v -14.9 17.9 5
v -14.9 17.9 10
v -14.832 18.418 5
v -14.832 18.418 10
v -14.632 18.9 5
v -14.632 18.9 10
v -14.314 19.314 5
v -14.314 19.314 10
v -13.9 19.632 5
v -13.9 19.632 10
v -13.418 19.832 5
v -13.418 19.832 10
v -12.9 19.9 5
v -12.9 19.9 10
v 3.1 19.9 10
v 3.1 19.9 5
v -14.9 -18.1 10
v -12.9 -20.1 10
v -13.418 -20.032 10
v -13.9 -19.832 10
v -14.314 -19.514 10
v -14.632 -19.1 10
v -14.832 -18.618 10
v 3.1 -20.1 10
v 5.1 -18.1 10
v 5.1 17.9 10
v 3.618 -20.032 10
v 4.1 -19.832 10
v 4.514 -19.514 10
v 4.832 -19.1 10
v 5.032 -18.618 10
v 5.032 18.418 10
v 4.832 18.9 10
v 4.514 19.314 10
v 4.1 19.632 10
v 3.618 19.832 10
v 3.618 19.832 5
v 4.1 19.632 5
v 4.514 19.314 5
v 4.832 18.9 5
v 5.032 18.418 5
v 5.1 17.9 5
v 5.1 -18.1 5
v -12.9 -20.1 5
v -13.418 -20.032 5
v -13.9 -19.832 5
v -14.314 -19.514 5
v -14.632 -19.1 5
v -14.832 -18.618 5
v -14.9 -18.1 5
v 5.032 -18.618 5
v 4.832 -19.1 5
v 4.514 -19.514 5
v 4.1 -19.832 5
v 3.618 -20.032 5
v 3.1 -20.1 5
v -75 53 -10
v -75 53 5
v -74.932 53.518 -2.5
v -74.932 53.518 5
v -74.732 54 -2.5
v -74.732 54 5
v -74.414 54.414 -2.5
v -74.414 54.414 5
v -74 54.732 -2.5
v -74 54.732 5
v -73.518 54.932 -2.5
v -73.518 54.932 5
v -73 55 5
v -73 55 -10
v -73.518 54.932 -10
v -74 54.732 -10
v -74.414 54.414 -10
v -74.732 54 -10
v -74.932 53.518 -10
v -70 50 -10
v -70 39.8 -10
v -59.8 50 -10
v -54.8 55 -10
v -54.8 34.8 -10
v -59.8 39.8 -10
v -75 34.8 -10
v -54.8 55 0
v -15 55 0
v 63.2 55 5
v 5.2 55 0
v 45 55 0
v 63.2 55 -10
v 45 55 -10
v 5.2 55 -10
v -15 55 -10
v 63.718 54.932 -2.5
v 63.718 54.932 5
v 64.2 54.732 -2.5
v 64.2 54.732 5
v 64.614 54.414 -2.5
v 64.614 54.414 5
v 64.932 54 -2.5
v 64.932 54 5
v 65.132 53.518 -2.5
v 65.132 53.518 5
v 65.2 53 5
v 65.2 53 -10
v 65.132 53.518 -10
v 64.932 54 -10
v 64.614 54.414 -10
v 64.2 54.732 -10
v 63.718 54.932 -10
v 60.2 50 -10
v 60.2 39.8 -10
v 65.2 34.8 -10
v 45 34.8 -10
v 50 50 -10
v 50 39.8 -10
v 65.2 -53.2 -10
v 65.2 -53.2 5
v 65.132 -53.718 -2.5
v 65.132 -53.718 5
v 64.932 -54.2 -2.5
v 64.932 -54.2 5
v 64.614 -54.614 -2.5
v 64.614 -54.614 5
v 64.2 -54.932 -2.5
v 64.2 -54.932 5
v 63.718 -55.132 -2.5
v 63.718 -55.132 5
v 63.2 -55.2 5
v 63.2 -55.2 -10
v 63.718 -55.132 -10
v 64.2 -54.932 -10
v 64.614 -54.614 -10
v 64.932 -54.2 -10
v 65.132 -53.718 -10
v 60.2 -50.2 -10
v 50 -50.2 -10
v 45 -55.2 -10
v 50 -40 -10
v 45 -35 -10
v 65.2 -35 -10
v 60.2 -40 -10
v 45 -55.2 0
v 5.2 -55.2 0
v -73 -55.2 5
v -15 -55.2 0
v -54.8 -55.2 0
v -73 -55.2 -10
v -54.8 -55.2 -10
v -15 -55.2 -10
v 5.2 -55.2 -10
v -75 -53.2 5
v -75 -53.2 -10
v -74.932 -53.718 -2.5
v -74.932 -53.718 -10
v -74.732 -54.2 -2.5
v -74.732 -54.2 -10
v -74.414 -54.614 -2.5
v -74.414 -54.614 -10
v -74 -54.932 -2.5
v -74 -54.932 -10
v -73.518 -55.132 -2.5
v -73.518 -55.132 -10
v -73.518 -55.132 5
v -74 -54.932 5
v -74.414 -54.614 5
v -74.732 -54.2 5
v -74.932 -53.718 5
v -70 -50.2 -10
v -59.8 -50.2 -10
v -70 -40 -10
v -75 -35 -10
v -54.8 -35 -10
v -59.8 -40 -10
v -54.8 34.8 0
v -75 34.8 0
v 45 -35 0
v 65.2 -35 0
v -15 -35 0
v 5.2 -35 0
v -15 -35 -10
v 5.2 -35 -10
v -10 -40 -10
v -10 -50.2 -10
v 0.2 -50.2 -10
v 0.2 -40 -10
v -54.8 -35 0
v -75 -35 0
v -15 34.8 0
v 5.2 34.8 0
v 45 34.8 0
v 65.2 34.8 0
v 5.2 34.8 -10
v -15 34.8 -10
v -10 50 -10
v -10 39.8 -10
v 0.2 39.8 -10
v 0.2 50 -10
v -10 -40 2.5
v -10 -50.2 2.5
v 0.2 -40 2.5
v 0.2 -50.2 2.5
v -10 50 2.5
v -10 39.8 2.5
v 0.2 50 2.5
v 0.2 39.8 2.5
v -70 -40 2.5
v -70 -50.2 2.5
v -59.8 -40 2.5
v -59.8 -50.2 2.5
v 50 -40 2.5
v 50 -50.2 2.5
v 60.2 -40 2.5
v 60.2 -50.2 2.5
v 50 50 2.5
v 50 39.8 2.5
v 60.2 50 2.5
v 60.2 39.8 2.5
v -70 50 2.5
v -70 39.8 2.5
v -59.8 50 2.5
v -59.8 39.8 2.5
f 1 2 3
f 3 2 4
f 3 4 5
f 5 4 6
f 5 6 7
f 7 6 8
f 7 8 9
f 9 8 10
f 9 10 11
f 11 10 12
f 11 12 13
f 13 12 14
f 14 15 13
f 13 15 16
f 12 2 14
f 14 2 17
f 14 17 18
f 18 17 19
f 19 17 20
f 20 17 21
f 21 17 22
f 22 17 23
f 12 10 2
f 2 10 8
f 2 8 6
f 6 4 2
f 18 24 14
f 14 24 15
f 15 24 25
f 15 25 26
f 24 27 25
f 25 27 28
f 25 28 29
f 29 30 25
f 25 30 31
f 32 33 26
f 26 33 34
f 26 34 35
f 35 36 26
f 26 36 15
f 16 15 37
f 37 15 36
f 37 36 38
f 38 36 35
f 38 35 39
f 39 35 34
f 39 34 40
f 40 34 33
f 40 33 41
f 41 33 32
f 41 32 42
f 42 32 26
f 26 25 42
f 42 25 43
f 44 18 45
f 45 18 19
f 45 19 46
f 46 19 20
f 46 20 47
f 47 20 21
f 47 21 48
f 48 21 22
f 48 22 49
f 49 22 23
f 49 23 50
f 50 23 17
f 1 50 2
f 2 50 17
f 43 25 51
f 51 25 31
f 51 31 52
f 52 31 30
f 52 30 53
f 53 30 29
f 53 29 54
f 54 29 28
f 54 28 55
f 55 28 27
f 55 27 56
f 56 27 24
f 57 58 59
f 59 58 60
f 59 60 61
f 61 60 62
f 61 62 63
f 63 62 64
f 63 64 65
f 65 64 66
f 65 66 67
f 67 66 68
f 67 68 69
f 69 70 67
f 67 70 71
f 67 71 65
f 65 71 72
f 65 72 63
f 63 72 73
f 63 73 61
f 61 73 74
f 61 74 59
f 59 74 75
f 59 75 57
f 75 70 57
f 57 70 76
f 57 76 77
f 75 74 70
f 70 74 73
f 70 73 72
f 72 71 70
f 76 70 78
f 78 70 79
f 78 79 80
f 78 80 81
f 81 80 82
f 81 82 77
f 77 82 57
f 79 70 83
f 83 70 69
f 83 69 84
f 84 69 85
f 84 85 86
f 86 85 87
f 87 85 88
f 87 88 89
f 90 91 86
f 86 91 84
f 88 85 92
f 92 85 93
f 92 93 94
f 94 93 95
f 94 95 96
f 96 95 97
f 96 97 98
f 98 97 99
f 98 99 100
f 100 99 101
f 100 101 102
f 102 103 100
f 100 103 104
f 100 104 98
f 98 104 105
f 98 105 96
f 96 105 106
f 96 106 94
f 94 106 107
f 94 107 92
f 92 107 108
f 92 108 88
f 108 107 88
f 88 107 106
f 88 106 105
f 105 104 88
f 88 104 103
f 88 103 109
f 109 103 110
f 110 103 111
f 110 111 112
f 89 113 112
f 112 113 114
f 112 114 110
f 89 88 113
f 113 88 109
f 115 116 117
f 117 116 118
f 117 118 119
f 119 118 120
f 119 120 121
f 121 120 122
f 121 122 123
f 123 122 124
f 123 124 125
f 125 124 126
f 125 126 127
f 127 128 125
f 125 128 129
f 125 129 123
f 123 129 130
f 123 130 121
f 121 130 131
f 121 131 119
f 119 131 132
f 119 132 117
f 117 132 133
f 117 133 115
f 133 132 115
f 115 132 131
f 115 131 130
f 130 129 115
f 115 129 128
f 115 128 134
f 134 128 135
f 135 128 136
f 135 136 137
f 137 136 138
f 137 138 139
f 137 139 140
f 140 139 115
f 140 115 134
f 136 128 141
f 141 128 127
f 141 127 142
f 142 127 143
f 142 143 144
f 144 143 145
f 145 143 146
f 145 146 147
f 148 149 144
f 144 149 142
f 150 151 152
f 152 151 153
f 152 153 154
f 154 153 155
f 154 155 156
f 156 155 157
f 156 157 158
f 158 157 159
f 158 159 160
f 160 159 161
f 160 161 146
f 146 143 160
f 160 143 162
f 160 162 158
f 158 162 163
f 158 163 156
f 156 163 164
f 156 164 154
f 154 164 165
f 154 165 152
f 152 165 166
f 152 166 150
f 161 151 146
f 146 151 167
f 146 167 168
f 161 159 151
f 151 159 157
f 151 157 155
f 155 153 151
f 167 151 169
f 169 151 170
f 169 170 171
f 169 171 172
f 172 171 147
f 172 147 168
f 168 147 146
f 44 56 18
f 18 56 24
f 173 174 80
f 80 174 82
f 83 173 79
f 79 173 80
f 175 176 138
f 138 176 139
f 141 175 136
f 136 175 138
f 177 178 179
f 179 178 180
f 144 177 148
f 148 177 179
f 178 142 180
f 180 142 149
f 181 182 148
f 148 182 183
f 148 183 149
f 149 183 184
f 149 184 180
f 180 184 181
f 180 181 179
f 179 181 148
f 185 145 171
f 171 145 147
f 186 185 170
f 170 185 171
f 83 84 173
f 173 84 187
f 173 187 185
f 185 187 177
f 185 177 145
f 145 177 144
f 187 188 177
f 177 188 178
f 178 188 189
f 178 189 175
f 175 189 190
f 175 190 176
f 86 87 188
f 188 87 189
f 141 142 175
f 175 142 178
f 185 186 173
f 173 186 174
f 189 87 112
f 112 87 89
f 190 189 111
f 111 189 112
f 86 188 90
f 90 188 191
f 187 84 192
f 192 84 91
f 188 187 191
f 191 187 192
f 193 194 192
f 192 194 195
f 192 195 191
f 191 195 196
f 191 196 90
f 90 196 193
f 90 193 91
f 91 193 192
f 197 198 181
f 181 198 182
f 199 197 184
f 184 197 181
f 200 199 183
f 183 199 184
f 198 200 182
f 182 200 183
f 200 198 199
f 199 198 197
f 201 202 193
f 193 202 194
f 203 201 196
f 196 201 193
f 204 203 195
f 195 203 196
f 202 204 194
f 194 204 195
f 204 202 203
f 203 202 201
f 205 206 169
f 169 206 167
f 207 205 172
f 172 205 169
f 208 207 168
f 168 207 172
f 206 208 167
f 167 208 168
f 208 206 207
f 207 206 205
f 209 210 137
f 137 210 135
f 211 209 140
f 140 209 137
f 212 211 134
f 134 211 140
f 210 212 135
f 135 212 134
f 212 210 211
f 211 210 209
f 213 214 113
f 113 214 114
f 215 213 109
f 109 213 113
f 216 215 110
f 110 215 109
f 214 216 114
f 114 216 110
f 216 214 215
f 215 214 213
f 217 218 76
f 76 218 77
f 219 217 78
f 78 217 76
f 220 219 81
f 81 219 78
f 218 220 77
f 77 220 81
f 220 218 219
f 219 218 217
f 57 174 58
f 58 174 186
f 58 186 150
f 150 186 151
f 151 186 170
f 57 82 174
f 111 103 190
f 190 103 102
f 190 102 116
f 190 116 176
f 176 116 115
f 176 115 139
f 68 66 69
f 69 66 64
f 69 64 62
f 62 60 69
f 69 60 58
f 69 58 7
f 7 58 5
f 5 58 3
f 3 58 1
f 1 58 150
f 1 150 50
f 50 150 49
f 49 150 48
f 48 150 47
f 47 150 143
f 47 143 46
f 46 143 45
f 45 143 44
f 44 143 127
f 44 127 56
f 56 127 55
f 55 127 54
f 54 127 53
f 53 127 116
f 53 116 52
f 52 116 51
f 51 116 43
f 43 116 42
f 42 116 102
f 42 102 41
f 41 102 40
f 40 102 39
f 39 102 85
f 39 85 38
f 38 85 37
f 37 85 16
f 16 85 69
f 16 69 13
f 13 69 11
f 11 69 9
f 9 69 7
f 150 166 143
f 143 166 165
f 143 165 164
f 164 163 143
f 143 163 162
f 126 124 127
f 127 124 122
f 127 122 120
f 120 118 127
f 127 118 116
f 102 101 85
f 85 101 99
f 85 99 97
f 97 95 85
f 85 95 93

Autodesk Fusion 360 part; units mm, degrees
sketch "Sketch1" plane through (0, 0, 0) normal (0, 0, 1) x (1, 0, 0)
  line L0 (-75, 55) -> (65.2, 55)
  line L1 (65.2, 55) -> (65.2, -55.2)
  line L2 (65.2, -55.2) -> (-75, -55.2)
  line L3 (-75, -55.2) -> (-75, 55)
  dimension "d1" = 140.2
  dimension "d2" = 110.2
extrude "Extrude1" add sketch "Sketch1" along normal blind 5
sketch "Sketch2" plane through (0, 0, 0) normal (0, 0, -1) x (1, 0, 0)
  line L0 (65.2, 55.2) -> (-75, 55.2)
  line L1 (-75, 55.2) -> (-75, -55)
  line L2 (-75, -55) -> (65.2, -55)
  line L3 (65.2, -55) -> (65.2, 55.2)
  line L4 (65.2, -55) -> (45, -55)
  line L5 (45, -55) -> (45, -34.8)
  line L6 (45, -34.8) -> (65.2, -34.8)
  line L7 (65.2, -34.8) -> (65.2, -55)
  line L8 (-75, -55) -> (-54.8, -55)
  line L9 (-54.8, -55) -> (-54.8, -34.8)
  line L10 (-54.8, -34.8) -> (-75, -34.8)
  line L11 (-75, -34.8) -> (-75, -55)
  line L12 (5.2, -55) -> (-15, -55)
  line L13 (-15, -55) -> (-15, -34.8)
  line L14 (-15, -34.8) -> (5.2, -34.8)
  line L15 (5.2, -34.8) -> (5.2, -55)
  line L16 (65.2, 55.2) -> (45, 55.2)
  line L17 (45, 55.2) -> (45, 35)
  line L18 (45, 35) -> (65.2, 35)
  line L19 (65.2, 35) -> (65.2, 55.2)
  line L20 (5.2, 55.2) -> (-15, 55.2)
  line L21 (-15, 55.2) -> (-15, 35)
  line L22 (-15, 35) -> (5.2, 35)
  line L23 (5.2, 35) -> (5.2, 55.2)
  line L24 (-75, 55.2) -> (-54.8, 55.2)
  line L25 (-54.8, 55.2) -> (-54.8, 35)
  line L26 (-54.8, 35) -> (-75, 35)
  line L27 (-75, 35) -> (-75, 55.2)
  line L28 (60.2, -50) -> (50, -50)
  line L29 (50, -50) -> (50, -39.8)
  line L30 (50, -39.8) -> (60.2, -39.8)
  line L31 (60.2, -39.8) -> (60.2, -50)
  line L32 (0.2, -50) -> (-10, -50)
  line L33 (-10, -50) -> (-10, -39.8)
  line L34 (-10, -39.8) -> (0.2, -39.8)
  line L35 (0.2, -39.8) -> (0.2, -50)
  line L36 (-59.8, -50) -> (-70, -50)
  line L37 (-70, -50) -> (-70, -39.8)
  line L38 (-70, -39.8) -> (-59.8, -39.8)
  line L39 (-59.8, -39.8) -> (-59.8, -50)
  line L40 (60.2, 40) -> (50, 40)
  line L41 (50, 40) -> (50, 50.2)
  line L42 (50, 50.2) -> (60.2, 50.2)
  line L43 (60.2, 50.2) -> (60.2, 40)
  line L44 (0.2, 40) -> (-10, 40)
  line L45 (-10, 40) -> (-10, 50.2)
  line L46 (-10, 50.2) -> (0.2, 50.2)
  line L47 (0.2, 50.2) -> (0.2, 40)
  line L48 (-59.8, 40) -> (-70, 40)
  line L49 (-70, 40) -> (-70, 50.2)
  line L50 (-70, 50.2) -> (-59.8, 50.2)
  line L51 (-59.8, 50.2) -> (-59.8, 40)
  dimension "d5" = 20.2
  dimension "d6" = 20.2
  dimension "d7" = 20.2
  dimension "d8" = 39.8
  dimension "d9" = 20.2
  dimension "d10" = 20.2
  dimension "d11" = 39.8
  dimension "d12" = 20.2
  dimension "d13" = 20.2
  dimension "d14" = 20.2
  dimension "d15" = 20.2
  dimension "d16" = 39.8
  dimension "d17" = 20.2
  dimension "d18" = 39.8
  dimension "d19" = 20.2
  dimension "d20" = 20.2
  dimension "d21" = 5
  dimension "d22" = 5
  dimension "d23" = 5
  dimension "d24" = 5
  dimension "d25" = 5
  dimension "d26" = 5
  dimension "d27" = 5
  dimension "d28" = 5
  dimension "d29" = 5
  dimension "d30" = 5
  dimension "d31" = 5
  dimension "d32" = 5
  dimension "d33" = 5
  dimension "d34" = 5
  dimension "d35" = 5
  dimension "d36" = 5
  dimension "d37" = 5
  dimension "d38" = 5
  dimension "d39" = 5
  dimension "d40" = 5
  dimension "d41" = 5
  dimension "d42" = 5
  dimension "d43" = 5
  dimension "d44" = 5
extrude "Extrude2" cut sketch "Sketch2" against normal blind 2.5 contours L28 L29 L30 L31 | L32 L33 L34 L35 | L36 L37 L38 L39 | L40 L41 L42 L43 | L44 L45 L46 L47 | L48 L49 L50 L51
extrude "Extrude3" add sketch "Sketch2" along normal blind 10 contours L0 L3 L16 L17 L18 L19 | L0 L20 L21 L22 L23 | L2 L3 L4 L5 L6 L7 | L0 L1 L24 L25 L26 L27 | L2 L12 L13 L14 L15 | L1 L2 L8 L9 L10 L11
sketch "Sketch3" plane through (0, 0, 5) normal (0, 0, 1) x (-1, 0, 0)
  line L0 (75, 55.2) -> (-65.2, 55.2)
  line L1 (-65.2, 55.2) -> (-65.2, -55)
  line L2 (-65.2, -55) -> (75, -55)
  line L3 (75, -55) -> (75, 55.2)
  line L4 (14.9, -19.9) -> (-5.1, -19.9)
  line L5 (-5.1, -19.9) -> (-5.1, 20.1)
  line L6 (-5.1, 20.1) -> (14.9, 20.1)
  line L7 (14.9, 20.1) -> (14.9, -19.9)
  dimension "d49" = 20
  dimension "d50" = 40
  dimension "d51" = 110.2
  dimension "d52" = 140.2
  dimension "d53" = 35.1
  dimension "d54" = 35.1
  dimension "d55" = 60.1
  dimension "d56" = 60.1
extrude "Extrude4" add sketch "Sketch3" along normal blind 5 contours L4 L5 L6 L7
fillet "Fillet1" radius 2 4 edges at (-75, -55.2, -2.5) (65.2, -55.2, -2.5) (65.2, 55, -2.5) (-75, 55, -2.5)
fillet "Fillet2" radius 2 4 edges at (5.1, -20.1, 7.5) (-14.9, -20.1, 7.5) (5.1, 19.9, 7.5) (-14.9, 19.9, 7.5)
